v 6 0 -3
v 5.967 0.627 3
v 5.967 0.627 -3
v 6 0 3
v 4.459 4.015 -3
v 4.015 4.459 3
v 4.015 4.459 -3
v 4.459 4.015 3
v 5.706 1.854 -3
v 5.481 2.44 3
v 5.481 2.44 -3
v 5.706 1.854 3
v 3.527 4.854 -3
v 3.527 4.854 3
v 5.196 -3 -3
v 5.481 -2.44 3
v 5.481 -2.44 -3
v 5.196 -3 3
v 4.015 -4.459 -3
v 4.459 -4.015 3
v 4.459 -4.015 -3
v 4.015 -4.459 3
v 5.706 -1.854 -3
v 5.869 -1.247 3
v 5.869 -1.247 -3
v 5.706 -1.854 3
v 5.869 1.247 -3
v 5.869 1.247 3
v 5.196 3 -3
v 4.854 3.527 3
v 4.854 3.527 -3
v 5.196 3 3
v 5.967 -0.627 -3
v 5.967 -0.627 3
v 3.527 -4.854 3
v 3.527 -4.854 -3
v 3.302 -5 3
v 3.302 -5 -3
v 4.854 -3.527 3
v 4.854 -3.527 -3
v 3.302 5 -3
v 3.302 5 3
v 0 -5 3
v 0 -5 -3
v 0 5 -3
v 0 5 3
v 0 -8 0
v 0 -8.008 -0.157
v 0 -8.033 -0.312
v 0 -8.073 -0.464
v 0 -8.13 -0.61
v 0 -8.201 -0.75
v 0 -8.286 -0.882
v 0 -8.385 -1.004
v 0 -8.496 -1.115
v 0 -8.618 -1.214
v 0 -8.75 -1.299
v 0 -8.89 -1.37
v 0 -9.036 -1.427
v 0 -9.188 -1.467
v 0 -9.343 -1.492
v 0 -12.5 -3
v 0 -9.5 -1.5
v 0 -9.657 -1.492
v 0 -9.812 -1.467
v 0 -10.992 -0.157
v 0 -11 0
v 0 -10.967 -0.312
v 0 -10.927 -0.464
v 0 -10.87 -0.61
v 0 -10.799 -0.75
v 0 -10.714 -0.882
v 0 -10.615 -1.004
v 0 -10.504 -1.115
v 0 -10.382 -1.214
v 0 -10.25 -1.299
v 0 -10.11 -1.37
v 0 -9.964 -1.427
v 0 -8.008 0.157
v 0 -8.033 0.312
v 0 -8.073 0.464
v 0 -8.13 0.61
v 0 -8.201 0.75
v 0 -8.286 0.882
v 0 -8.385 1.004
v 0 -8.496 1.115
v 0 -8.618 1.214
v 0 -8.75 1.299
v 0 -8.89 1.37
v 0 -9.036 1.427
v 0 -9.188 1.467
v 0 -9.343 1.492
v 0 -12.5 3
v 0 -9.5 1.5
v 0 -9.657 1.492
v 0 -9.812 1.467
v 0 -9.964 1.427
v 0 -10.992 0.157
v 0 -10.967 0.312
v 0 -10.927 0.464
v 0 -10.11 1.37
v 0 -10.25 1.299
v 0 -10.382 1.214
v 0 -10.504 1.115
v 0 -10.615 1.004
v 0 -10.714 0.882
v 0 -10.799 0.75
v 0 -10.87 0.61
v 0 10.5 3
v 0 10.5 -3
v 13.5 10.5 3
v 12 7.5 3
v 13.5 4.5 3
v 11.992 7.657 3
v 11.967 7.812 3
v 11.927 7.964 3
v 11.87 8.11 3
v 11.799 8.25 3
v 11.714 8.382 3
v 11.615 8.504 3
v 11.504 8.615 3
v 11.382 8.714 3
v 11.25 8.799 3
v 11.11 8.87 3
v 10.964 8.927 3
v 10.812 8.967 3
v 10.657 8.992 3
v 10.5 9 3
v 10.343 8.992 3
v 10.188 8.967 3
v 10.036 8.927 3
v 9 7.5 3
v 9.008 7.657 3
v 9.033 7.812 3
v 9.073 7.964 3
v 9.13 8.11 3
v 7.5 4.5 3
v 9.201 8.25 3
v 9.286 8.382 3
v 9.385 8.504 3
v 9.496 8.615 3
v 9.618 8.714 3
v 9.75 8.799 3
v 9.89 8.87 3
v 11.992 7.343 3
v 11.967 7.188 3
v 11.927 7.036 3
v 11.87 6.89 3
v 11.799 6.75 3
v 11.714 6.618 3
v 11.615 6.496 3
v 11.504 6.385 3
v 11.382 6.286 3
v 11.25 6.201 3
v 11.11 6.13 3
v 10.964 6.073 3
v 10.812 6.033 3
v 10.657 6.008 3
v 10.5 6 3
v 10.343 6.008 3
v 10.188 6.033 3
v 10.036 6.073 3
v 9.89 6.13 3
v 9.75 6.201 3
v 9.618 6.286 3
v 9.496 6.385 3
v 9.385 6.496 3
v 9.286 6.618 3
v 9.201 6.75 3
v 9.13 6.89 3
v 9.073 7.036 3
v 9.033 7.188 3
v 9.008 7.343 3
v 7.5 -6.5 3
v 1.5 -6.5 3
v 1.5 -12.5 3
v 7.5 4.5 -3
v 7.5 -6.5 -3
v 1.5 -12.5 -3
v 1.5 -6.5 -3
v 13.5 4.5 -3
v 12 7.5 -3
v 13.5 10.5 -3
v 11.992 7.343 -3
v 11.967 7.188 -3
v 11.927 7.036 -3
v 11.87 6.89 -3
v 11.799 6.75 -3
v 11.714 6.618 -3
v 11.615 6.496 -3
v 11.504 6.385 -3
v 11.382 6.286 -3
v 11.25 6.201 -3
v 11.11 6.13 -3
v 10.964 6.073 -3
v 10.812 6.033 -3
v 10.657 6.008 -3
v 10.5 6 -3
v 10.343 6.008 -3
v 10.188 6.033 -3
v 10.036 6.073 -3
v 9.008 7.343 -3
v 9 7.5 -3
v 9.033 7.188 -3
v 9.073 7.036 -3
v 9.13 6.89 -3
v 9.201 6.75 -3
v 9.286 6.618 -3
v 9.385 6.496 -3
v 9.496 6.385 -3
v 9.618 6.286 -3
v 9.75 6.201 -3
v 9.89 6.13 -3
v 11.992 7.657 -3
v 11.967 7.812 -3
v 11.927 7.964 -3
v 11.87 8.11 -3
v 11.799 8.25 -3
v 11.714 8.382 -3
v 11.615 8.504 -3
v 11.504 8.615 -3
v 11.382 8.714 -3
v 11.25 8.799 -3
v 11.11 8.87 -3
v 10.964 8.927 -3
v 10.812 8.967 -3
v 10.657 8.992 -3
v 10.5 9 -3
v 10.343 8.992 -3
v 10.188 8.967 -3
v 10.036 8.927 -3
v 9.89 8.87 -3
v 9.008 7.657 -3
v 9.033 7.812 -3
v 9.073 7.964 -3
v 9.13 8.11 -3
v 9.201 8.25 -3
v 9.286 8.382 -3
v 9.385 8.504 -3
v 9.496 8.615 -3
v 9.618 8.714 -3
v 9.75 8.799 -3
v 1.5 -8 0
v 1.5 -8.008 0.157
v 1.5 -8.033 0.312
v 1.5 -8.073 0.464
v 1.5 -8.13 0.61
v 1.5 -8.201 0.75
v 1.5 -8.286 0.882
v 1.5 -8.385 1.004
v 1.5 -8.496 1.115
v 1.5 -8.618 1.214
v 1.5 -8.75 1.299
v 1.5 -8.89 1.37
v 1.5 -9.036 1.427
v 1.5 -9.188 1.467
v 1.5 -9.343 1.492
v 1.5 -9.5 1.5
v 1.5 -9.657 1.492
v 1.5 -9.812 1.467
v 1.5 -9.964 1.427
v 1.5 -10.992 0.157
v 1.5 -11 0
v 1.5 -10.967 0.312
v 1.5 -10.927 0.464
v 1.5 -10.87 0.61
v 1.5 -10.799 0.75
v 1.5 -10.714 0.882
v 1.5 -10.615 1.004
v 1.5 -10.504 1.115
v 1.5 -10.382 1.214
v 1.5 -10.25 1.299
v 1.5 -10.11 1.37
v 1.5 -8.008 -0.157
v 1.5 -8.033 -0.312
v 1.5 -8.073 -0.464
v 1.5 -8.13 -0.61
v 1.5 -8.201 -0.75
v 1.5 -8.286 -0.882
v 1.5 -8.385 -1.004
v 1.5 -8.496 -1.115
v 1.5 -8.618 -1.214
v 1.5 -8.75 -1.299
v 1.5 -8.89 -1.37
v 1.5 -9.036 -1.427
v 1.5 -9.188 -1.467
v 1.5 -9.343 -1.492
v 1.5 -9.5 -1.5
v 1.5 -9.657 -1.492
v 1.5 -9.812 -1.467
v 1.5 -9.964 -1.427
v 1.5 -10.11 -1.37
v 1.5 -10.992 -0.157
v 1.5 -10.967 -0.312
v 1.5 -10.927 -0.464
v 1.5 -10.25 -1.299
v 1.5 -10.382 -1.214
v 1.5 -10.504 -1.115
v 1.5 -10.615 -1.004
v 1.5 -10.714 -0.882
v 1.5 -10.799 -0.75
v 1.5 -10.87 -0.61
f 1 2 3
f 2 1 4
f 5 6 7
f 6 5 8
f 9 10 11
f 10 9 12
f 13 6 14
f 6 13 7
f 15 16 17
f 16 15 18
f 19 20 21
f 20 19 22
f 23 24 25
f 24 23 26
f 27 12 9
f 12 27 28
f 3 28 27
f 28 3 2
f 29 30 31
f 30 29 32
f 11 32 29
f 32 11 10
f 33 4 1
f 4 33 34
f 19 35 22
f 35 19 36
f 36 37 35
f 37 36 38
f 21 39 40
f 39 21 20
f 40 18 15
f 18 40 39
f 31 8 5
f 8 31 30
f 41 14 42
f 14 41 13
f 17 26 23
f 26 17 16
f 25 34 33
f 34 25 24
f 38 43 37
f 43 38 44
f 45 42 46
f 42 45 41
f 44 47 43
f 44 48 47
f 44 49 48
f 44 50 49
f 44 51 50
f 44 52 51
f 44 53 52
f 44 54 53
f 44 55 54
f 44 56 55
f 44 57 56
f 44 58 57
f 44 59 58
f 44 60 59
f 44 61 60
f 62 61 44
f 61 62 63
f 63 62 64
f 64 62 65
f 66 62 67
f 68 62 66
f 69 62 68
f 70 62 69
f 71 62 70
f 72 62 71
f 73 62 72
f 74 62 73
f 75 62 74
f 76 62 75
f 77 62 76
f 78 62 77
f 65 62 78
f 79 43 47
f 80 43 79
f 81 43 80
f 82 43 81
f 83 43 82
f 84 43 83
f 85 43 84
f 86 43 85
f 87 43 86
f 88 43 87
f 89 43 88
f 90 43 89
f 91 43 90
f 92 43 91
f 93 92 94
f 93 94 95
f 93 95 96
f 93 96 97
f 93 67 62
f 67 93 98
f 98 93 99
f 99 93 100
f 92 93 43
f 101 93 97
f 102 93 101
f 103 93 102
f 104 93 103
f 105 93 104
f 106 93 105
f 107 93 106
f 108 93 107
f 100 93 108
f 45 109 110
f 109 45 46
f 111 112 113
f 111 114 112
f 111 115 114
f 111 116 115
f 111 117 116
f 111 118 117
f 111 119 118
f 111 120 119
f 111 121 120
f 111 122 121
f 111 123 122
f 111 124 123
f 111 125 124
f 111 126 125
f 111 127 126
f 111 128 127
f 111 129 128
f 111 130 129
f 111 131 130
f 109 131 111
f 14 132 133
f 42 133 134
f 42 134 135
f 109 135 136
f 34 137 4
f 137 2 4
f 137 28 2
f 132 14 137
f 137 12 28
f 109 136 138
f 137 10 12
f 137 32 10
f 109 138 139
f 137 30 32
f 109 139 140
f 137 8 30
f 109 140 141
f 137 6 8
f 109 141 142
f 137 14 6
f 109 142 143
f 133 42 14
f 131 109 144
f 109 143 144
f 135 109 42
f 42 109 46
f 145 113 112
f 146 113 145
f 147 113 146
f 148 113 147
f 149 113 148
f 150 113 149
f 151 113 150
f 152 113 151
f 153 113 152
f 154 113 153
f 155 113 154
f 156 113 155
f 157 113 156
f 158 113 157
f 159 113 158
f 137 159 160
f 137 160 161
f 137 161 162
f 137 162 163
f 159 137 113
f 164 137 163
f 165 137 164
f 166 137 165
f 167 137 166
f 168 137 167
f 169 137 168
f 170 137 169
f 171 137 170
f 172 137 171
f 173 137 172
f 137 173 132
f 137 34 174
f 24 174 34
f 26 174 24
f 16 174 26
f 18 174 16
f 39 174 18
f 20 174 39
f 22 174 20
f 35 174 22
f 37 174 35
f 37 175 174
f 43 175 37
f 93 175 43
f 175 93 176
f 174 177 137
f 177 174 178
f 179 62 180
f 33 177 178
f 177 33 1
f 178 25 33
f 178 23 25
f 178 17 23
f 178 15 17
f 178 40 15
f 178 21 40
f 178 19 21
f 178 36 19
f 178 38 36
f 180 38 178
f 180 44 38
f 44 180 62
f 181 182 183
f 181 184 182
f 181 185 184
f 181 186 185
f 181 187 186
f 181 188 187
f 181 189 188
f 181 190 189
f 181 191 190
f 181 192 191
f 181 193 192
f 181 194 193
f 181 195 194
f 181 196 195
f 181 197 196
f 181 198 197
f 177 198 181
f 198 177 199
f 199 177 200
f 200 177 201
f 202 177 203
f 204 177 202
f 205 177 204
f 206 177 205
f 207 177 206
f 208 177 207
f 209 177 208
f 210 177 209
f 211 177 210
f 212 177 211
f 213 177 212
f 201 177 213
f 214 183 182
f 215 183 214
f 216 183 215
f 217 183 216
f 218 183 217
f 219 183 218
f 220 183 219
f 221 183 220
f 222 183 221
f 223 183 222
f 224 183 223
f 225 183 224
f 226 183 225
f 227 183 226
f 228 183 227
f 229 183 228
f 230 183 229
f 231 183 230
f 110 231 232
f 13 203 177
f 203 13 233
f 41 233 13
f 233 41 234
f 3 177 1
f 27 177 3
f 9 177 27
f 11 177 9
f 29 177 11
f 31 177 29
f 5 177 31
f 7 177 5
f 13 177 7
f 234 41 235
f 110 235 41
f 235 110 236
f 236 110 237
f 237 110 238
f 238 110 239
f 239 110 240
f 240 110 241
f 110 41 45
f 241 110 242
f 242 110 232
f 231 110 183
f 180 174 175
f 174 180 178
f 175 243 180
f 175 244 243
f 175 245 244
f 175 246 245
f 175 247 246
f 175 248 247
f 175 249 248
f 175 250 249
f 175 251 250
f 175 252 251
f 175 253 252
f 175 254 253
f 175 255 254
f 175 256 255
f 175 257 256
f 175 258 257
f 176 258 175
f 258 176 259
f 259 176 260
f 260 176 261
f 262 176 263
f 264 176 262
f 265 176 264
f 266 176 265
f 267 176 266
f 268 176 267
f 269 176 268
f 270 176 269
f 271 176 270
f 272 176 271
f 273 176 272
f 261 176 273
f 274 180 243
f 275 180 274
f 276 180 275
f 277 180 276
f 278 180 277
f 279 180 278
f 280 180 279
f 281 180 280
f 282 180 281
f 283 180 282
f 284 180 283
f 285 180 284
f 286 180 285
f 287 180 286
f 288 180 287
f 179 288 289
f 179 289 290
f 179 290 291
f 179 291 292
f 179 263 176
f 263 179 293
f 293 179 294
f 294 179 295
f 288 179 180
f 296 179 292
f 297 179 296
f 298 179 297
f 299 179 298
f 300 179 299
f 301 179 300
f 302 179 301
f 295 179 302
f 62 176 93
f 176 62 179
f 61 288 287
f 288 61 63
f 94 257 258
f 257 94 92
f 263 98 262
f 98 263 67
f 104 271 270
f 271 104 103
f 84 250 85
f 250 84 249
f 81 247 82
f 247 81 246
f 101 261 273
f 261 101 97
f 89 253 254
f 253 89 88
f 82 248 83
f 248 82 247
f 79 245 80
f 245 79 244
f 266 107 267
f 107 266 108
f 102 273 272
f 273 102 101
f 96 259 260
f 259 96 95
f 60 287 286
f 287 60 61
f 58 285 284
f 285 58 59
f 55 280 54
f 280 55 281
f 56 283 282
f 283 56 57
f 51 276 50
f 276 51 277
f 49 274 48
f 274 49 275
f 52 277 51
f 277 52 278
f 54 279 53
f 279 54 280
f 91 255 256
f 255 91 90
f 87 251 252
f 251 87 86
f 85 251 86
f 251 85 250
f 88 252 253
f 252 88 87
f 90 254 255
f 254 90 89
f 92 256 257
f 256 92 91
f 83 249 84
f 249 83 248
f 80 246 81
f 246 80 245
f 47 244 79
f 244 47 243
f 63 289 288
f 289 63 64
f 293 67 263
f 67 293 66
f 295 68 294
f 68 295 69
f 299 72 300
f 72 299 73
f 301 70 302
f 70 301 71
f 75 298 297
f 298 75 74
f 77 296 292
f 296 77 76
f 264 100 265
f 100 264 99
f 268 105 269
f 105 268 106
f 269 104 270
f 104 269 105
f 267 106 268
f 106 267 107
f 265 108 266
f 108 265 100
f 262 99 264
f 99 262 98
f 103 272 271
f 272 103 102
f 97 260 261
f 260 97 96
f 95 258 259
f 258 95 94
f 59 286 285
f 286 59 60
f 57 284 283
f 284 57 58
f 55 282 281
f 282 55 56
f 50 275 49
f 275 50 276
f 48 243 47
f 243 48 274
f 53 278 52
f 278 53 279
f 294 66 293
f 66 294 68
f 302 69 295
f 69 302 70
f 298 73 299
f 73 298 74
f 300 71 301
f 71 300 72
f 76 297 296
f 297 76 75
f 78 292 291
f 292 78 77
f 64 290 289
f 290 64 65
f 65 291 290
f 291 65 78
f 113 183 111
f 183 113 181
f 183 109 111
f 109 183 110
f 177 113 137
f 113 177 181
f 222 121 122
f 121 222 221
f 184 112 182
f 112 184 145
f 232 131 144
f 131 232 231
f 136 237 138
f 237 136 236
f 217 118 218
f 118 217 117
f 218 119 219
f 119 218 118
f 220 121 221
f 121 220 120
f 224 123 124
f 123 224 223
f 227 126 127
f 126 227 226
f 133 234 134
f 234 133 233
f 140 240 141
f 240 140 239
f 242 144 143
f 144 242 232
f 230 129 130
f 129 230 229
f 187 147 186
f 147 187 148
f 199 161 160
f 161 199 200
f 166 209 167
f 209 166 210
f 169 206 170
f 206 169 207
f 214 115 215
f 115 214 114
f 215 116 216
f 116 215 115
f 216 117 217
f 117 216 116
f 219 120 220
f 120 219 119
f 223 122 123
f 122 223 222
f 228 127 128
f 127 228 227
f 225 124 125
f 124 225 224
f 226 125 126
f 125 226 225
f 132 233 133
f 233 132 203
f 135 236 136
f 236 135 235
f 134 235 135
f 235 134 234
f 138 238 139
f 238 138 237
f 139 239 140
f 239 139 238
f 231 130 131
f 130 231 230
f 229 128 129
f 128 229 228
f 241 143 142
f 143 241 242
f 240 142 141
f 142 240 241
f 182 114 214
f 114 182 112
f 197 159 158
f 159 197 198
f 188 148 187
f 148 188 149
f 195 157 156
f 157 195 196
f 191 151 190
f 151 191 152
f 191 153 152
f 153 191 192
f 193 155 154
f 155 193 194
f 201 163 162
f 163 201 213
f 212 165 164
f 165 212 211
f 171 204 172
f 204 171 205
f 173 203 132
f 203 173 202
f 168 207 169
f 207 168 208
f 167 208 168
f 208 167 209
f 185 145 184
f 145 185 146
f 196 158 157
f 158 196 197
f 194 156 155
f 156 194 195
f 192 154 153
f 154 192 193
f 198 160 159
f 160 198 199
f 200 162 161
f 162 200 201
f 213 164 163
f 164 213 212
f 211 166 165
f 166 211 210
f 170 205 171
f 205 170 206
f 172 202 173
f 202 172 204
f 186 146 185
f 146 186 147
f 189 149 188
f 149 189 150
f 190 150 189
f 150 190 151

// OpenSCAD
screw_size=3;

size_wall=1.5;
tolerance=1;

motor_size_x=12;
motor_size_y=10;

wheel_down=3;
wheel_rad=15;

motor_offset=wheel_rad-2*size_wall-wheel_down-motor_size_y/2;

module motor(h)
{
	intersection()
	{	
		cylinder(h=h,d=motor_size_x, $fn=60, center=true);
		
		cube([motor_size_x,motor_size_y,h], center=true );
	}
}

union()
{
	//motor offset
	translate([(motor_size_x/2+size_wall)/2,(motor_size_y+size_wall*2)/2 + motor_offset/2,0])
	cube([motor_size_x/2+size_wall,motor_offset,screw_size*2],center=true);
	
	//screw_mount
	translate([screw_size+motor_size_x/2+size_wall,(motor_size_y+size_wall*2)/2+motor_offset-screw_size,0])
	difference()
	{
		cube([screw_size*2, screw_size*2, screw_size*2],center=true);
		
		cylinder(d=screw_size,h=screw_size*2+1, $fn=60, center=true);
	}
	
	// motor holder
	difference()
	{
		translate([(motor_size_x/2+size_wall)/2,0,0])
		cube([motor_size_x/2+size_wall,motor_size_y+size_wall*2,screw_size*2],center=true);
		
		motor(screw_size*2+1);
	}
	
	// дупка за съединяване на двете части
	translate([size_wall/2,-screw_size-(motor_size_y+size_wall*2)/2,0])
	difference()
	{
		cube([size_wall, screw_size*2, screw_size*2], center=true);
		
		rotate([0,90,0])
		cylinder(d=screw_size, h=size_wall+1, $fn=60, center=true);
	}
}
